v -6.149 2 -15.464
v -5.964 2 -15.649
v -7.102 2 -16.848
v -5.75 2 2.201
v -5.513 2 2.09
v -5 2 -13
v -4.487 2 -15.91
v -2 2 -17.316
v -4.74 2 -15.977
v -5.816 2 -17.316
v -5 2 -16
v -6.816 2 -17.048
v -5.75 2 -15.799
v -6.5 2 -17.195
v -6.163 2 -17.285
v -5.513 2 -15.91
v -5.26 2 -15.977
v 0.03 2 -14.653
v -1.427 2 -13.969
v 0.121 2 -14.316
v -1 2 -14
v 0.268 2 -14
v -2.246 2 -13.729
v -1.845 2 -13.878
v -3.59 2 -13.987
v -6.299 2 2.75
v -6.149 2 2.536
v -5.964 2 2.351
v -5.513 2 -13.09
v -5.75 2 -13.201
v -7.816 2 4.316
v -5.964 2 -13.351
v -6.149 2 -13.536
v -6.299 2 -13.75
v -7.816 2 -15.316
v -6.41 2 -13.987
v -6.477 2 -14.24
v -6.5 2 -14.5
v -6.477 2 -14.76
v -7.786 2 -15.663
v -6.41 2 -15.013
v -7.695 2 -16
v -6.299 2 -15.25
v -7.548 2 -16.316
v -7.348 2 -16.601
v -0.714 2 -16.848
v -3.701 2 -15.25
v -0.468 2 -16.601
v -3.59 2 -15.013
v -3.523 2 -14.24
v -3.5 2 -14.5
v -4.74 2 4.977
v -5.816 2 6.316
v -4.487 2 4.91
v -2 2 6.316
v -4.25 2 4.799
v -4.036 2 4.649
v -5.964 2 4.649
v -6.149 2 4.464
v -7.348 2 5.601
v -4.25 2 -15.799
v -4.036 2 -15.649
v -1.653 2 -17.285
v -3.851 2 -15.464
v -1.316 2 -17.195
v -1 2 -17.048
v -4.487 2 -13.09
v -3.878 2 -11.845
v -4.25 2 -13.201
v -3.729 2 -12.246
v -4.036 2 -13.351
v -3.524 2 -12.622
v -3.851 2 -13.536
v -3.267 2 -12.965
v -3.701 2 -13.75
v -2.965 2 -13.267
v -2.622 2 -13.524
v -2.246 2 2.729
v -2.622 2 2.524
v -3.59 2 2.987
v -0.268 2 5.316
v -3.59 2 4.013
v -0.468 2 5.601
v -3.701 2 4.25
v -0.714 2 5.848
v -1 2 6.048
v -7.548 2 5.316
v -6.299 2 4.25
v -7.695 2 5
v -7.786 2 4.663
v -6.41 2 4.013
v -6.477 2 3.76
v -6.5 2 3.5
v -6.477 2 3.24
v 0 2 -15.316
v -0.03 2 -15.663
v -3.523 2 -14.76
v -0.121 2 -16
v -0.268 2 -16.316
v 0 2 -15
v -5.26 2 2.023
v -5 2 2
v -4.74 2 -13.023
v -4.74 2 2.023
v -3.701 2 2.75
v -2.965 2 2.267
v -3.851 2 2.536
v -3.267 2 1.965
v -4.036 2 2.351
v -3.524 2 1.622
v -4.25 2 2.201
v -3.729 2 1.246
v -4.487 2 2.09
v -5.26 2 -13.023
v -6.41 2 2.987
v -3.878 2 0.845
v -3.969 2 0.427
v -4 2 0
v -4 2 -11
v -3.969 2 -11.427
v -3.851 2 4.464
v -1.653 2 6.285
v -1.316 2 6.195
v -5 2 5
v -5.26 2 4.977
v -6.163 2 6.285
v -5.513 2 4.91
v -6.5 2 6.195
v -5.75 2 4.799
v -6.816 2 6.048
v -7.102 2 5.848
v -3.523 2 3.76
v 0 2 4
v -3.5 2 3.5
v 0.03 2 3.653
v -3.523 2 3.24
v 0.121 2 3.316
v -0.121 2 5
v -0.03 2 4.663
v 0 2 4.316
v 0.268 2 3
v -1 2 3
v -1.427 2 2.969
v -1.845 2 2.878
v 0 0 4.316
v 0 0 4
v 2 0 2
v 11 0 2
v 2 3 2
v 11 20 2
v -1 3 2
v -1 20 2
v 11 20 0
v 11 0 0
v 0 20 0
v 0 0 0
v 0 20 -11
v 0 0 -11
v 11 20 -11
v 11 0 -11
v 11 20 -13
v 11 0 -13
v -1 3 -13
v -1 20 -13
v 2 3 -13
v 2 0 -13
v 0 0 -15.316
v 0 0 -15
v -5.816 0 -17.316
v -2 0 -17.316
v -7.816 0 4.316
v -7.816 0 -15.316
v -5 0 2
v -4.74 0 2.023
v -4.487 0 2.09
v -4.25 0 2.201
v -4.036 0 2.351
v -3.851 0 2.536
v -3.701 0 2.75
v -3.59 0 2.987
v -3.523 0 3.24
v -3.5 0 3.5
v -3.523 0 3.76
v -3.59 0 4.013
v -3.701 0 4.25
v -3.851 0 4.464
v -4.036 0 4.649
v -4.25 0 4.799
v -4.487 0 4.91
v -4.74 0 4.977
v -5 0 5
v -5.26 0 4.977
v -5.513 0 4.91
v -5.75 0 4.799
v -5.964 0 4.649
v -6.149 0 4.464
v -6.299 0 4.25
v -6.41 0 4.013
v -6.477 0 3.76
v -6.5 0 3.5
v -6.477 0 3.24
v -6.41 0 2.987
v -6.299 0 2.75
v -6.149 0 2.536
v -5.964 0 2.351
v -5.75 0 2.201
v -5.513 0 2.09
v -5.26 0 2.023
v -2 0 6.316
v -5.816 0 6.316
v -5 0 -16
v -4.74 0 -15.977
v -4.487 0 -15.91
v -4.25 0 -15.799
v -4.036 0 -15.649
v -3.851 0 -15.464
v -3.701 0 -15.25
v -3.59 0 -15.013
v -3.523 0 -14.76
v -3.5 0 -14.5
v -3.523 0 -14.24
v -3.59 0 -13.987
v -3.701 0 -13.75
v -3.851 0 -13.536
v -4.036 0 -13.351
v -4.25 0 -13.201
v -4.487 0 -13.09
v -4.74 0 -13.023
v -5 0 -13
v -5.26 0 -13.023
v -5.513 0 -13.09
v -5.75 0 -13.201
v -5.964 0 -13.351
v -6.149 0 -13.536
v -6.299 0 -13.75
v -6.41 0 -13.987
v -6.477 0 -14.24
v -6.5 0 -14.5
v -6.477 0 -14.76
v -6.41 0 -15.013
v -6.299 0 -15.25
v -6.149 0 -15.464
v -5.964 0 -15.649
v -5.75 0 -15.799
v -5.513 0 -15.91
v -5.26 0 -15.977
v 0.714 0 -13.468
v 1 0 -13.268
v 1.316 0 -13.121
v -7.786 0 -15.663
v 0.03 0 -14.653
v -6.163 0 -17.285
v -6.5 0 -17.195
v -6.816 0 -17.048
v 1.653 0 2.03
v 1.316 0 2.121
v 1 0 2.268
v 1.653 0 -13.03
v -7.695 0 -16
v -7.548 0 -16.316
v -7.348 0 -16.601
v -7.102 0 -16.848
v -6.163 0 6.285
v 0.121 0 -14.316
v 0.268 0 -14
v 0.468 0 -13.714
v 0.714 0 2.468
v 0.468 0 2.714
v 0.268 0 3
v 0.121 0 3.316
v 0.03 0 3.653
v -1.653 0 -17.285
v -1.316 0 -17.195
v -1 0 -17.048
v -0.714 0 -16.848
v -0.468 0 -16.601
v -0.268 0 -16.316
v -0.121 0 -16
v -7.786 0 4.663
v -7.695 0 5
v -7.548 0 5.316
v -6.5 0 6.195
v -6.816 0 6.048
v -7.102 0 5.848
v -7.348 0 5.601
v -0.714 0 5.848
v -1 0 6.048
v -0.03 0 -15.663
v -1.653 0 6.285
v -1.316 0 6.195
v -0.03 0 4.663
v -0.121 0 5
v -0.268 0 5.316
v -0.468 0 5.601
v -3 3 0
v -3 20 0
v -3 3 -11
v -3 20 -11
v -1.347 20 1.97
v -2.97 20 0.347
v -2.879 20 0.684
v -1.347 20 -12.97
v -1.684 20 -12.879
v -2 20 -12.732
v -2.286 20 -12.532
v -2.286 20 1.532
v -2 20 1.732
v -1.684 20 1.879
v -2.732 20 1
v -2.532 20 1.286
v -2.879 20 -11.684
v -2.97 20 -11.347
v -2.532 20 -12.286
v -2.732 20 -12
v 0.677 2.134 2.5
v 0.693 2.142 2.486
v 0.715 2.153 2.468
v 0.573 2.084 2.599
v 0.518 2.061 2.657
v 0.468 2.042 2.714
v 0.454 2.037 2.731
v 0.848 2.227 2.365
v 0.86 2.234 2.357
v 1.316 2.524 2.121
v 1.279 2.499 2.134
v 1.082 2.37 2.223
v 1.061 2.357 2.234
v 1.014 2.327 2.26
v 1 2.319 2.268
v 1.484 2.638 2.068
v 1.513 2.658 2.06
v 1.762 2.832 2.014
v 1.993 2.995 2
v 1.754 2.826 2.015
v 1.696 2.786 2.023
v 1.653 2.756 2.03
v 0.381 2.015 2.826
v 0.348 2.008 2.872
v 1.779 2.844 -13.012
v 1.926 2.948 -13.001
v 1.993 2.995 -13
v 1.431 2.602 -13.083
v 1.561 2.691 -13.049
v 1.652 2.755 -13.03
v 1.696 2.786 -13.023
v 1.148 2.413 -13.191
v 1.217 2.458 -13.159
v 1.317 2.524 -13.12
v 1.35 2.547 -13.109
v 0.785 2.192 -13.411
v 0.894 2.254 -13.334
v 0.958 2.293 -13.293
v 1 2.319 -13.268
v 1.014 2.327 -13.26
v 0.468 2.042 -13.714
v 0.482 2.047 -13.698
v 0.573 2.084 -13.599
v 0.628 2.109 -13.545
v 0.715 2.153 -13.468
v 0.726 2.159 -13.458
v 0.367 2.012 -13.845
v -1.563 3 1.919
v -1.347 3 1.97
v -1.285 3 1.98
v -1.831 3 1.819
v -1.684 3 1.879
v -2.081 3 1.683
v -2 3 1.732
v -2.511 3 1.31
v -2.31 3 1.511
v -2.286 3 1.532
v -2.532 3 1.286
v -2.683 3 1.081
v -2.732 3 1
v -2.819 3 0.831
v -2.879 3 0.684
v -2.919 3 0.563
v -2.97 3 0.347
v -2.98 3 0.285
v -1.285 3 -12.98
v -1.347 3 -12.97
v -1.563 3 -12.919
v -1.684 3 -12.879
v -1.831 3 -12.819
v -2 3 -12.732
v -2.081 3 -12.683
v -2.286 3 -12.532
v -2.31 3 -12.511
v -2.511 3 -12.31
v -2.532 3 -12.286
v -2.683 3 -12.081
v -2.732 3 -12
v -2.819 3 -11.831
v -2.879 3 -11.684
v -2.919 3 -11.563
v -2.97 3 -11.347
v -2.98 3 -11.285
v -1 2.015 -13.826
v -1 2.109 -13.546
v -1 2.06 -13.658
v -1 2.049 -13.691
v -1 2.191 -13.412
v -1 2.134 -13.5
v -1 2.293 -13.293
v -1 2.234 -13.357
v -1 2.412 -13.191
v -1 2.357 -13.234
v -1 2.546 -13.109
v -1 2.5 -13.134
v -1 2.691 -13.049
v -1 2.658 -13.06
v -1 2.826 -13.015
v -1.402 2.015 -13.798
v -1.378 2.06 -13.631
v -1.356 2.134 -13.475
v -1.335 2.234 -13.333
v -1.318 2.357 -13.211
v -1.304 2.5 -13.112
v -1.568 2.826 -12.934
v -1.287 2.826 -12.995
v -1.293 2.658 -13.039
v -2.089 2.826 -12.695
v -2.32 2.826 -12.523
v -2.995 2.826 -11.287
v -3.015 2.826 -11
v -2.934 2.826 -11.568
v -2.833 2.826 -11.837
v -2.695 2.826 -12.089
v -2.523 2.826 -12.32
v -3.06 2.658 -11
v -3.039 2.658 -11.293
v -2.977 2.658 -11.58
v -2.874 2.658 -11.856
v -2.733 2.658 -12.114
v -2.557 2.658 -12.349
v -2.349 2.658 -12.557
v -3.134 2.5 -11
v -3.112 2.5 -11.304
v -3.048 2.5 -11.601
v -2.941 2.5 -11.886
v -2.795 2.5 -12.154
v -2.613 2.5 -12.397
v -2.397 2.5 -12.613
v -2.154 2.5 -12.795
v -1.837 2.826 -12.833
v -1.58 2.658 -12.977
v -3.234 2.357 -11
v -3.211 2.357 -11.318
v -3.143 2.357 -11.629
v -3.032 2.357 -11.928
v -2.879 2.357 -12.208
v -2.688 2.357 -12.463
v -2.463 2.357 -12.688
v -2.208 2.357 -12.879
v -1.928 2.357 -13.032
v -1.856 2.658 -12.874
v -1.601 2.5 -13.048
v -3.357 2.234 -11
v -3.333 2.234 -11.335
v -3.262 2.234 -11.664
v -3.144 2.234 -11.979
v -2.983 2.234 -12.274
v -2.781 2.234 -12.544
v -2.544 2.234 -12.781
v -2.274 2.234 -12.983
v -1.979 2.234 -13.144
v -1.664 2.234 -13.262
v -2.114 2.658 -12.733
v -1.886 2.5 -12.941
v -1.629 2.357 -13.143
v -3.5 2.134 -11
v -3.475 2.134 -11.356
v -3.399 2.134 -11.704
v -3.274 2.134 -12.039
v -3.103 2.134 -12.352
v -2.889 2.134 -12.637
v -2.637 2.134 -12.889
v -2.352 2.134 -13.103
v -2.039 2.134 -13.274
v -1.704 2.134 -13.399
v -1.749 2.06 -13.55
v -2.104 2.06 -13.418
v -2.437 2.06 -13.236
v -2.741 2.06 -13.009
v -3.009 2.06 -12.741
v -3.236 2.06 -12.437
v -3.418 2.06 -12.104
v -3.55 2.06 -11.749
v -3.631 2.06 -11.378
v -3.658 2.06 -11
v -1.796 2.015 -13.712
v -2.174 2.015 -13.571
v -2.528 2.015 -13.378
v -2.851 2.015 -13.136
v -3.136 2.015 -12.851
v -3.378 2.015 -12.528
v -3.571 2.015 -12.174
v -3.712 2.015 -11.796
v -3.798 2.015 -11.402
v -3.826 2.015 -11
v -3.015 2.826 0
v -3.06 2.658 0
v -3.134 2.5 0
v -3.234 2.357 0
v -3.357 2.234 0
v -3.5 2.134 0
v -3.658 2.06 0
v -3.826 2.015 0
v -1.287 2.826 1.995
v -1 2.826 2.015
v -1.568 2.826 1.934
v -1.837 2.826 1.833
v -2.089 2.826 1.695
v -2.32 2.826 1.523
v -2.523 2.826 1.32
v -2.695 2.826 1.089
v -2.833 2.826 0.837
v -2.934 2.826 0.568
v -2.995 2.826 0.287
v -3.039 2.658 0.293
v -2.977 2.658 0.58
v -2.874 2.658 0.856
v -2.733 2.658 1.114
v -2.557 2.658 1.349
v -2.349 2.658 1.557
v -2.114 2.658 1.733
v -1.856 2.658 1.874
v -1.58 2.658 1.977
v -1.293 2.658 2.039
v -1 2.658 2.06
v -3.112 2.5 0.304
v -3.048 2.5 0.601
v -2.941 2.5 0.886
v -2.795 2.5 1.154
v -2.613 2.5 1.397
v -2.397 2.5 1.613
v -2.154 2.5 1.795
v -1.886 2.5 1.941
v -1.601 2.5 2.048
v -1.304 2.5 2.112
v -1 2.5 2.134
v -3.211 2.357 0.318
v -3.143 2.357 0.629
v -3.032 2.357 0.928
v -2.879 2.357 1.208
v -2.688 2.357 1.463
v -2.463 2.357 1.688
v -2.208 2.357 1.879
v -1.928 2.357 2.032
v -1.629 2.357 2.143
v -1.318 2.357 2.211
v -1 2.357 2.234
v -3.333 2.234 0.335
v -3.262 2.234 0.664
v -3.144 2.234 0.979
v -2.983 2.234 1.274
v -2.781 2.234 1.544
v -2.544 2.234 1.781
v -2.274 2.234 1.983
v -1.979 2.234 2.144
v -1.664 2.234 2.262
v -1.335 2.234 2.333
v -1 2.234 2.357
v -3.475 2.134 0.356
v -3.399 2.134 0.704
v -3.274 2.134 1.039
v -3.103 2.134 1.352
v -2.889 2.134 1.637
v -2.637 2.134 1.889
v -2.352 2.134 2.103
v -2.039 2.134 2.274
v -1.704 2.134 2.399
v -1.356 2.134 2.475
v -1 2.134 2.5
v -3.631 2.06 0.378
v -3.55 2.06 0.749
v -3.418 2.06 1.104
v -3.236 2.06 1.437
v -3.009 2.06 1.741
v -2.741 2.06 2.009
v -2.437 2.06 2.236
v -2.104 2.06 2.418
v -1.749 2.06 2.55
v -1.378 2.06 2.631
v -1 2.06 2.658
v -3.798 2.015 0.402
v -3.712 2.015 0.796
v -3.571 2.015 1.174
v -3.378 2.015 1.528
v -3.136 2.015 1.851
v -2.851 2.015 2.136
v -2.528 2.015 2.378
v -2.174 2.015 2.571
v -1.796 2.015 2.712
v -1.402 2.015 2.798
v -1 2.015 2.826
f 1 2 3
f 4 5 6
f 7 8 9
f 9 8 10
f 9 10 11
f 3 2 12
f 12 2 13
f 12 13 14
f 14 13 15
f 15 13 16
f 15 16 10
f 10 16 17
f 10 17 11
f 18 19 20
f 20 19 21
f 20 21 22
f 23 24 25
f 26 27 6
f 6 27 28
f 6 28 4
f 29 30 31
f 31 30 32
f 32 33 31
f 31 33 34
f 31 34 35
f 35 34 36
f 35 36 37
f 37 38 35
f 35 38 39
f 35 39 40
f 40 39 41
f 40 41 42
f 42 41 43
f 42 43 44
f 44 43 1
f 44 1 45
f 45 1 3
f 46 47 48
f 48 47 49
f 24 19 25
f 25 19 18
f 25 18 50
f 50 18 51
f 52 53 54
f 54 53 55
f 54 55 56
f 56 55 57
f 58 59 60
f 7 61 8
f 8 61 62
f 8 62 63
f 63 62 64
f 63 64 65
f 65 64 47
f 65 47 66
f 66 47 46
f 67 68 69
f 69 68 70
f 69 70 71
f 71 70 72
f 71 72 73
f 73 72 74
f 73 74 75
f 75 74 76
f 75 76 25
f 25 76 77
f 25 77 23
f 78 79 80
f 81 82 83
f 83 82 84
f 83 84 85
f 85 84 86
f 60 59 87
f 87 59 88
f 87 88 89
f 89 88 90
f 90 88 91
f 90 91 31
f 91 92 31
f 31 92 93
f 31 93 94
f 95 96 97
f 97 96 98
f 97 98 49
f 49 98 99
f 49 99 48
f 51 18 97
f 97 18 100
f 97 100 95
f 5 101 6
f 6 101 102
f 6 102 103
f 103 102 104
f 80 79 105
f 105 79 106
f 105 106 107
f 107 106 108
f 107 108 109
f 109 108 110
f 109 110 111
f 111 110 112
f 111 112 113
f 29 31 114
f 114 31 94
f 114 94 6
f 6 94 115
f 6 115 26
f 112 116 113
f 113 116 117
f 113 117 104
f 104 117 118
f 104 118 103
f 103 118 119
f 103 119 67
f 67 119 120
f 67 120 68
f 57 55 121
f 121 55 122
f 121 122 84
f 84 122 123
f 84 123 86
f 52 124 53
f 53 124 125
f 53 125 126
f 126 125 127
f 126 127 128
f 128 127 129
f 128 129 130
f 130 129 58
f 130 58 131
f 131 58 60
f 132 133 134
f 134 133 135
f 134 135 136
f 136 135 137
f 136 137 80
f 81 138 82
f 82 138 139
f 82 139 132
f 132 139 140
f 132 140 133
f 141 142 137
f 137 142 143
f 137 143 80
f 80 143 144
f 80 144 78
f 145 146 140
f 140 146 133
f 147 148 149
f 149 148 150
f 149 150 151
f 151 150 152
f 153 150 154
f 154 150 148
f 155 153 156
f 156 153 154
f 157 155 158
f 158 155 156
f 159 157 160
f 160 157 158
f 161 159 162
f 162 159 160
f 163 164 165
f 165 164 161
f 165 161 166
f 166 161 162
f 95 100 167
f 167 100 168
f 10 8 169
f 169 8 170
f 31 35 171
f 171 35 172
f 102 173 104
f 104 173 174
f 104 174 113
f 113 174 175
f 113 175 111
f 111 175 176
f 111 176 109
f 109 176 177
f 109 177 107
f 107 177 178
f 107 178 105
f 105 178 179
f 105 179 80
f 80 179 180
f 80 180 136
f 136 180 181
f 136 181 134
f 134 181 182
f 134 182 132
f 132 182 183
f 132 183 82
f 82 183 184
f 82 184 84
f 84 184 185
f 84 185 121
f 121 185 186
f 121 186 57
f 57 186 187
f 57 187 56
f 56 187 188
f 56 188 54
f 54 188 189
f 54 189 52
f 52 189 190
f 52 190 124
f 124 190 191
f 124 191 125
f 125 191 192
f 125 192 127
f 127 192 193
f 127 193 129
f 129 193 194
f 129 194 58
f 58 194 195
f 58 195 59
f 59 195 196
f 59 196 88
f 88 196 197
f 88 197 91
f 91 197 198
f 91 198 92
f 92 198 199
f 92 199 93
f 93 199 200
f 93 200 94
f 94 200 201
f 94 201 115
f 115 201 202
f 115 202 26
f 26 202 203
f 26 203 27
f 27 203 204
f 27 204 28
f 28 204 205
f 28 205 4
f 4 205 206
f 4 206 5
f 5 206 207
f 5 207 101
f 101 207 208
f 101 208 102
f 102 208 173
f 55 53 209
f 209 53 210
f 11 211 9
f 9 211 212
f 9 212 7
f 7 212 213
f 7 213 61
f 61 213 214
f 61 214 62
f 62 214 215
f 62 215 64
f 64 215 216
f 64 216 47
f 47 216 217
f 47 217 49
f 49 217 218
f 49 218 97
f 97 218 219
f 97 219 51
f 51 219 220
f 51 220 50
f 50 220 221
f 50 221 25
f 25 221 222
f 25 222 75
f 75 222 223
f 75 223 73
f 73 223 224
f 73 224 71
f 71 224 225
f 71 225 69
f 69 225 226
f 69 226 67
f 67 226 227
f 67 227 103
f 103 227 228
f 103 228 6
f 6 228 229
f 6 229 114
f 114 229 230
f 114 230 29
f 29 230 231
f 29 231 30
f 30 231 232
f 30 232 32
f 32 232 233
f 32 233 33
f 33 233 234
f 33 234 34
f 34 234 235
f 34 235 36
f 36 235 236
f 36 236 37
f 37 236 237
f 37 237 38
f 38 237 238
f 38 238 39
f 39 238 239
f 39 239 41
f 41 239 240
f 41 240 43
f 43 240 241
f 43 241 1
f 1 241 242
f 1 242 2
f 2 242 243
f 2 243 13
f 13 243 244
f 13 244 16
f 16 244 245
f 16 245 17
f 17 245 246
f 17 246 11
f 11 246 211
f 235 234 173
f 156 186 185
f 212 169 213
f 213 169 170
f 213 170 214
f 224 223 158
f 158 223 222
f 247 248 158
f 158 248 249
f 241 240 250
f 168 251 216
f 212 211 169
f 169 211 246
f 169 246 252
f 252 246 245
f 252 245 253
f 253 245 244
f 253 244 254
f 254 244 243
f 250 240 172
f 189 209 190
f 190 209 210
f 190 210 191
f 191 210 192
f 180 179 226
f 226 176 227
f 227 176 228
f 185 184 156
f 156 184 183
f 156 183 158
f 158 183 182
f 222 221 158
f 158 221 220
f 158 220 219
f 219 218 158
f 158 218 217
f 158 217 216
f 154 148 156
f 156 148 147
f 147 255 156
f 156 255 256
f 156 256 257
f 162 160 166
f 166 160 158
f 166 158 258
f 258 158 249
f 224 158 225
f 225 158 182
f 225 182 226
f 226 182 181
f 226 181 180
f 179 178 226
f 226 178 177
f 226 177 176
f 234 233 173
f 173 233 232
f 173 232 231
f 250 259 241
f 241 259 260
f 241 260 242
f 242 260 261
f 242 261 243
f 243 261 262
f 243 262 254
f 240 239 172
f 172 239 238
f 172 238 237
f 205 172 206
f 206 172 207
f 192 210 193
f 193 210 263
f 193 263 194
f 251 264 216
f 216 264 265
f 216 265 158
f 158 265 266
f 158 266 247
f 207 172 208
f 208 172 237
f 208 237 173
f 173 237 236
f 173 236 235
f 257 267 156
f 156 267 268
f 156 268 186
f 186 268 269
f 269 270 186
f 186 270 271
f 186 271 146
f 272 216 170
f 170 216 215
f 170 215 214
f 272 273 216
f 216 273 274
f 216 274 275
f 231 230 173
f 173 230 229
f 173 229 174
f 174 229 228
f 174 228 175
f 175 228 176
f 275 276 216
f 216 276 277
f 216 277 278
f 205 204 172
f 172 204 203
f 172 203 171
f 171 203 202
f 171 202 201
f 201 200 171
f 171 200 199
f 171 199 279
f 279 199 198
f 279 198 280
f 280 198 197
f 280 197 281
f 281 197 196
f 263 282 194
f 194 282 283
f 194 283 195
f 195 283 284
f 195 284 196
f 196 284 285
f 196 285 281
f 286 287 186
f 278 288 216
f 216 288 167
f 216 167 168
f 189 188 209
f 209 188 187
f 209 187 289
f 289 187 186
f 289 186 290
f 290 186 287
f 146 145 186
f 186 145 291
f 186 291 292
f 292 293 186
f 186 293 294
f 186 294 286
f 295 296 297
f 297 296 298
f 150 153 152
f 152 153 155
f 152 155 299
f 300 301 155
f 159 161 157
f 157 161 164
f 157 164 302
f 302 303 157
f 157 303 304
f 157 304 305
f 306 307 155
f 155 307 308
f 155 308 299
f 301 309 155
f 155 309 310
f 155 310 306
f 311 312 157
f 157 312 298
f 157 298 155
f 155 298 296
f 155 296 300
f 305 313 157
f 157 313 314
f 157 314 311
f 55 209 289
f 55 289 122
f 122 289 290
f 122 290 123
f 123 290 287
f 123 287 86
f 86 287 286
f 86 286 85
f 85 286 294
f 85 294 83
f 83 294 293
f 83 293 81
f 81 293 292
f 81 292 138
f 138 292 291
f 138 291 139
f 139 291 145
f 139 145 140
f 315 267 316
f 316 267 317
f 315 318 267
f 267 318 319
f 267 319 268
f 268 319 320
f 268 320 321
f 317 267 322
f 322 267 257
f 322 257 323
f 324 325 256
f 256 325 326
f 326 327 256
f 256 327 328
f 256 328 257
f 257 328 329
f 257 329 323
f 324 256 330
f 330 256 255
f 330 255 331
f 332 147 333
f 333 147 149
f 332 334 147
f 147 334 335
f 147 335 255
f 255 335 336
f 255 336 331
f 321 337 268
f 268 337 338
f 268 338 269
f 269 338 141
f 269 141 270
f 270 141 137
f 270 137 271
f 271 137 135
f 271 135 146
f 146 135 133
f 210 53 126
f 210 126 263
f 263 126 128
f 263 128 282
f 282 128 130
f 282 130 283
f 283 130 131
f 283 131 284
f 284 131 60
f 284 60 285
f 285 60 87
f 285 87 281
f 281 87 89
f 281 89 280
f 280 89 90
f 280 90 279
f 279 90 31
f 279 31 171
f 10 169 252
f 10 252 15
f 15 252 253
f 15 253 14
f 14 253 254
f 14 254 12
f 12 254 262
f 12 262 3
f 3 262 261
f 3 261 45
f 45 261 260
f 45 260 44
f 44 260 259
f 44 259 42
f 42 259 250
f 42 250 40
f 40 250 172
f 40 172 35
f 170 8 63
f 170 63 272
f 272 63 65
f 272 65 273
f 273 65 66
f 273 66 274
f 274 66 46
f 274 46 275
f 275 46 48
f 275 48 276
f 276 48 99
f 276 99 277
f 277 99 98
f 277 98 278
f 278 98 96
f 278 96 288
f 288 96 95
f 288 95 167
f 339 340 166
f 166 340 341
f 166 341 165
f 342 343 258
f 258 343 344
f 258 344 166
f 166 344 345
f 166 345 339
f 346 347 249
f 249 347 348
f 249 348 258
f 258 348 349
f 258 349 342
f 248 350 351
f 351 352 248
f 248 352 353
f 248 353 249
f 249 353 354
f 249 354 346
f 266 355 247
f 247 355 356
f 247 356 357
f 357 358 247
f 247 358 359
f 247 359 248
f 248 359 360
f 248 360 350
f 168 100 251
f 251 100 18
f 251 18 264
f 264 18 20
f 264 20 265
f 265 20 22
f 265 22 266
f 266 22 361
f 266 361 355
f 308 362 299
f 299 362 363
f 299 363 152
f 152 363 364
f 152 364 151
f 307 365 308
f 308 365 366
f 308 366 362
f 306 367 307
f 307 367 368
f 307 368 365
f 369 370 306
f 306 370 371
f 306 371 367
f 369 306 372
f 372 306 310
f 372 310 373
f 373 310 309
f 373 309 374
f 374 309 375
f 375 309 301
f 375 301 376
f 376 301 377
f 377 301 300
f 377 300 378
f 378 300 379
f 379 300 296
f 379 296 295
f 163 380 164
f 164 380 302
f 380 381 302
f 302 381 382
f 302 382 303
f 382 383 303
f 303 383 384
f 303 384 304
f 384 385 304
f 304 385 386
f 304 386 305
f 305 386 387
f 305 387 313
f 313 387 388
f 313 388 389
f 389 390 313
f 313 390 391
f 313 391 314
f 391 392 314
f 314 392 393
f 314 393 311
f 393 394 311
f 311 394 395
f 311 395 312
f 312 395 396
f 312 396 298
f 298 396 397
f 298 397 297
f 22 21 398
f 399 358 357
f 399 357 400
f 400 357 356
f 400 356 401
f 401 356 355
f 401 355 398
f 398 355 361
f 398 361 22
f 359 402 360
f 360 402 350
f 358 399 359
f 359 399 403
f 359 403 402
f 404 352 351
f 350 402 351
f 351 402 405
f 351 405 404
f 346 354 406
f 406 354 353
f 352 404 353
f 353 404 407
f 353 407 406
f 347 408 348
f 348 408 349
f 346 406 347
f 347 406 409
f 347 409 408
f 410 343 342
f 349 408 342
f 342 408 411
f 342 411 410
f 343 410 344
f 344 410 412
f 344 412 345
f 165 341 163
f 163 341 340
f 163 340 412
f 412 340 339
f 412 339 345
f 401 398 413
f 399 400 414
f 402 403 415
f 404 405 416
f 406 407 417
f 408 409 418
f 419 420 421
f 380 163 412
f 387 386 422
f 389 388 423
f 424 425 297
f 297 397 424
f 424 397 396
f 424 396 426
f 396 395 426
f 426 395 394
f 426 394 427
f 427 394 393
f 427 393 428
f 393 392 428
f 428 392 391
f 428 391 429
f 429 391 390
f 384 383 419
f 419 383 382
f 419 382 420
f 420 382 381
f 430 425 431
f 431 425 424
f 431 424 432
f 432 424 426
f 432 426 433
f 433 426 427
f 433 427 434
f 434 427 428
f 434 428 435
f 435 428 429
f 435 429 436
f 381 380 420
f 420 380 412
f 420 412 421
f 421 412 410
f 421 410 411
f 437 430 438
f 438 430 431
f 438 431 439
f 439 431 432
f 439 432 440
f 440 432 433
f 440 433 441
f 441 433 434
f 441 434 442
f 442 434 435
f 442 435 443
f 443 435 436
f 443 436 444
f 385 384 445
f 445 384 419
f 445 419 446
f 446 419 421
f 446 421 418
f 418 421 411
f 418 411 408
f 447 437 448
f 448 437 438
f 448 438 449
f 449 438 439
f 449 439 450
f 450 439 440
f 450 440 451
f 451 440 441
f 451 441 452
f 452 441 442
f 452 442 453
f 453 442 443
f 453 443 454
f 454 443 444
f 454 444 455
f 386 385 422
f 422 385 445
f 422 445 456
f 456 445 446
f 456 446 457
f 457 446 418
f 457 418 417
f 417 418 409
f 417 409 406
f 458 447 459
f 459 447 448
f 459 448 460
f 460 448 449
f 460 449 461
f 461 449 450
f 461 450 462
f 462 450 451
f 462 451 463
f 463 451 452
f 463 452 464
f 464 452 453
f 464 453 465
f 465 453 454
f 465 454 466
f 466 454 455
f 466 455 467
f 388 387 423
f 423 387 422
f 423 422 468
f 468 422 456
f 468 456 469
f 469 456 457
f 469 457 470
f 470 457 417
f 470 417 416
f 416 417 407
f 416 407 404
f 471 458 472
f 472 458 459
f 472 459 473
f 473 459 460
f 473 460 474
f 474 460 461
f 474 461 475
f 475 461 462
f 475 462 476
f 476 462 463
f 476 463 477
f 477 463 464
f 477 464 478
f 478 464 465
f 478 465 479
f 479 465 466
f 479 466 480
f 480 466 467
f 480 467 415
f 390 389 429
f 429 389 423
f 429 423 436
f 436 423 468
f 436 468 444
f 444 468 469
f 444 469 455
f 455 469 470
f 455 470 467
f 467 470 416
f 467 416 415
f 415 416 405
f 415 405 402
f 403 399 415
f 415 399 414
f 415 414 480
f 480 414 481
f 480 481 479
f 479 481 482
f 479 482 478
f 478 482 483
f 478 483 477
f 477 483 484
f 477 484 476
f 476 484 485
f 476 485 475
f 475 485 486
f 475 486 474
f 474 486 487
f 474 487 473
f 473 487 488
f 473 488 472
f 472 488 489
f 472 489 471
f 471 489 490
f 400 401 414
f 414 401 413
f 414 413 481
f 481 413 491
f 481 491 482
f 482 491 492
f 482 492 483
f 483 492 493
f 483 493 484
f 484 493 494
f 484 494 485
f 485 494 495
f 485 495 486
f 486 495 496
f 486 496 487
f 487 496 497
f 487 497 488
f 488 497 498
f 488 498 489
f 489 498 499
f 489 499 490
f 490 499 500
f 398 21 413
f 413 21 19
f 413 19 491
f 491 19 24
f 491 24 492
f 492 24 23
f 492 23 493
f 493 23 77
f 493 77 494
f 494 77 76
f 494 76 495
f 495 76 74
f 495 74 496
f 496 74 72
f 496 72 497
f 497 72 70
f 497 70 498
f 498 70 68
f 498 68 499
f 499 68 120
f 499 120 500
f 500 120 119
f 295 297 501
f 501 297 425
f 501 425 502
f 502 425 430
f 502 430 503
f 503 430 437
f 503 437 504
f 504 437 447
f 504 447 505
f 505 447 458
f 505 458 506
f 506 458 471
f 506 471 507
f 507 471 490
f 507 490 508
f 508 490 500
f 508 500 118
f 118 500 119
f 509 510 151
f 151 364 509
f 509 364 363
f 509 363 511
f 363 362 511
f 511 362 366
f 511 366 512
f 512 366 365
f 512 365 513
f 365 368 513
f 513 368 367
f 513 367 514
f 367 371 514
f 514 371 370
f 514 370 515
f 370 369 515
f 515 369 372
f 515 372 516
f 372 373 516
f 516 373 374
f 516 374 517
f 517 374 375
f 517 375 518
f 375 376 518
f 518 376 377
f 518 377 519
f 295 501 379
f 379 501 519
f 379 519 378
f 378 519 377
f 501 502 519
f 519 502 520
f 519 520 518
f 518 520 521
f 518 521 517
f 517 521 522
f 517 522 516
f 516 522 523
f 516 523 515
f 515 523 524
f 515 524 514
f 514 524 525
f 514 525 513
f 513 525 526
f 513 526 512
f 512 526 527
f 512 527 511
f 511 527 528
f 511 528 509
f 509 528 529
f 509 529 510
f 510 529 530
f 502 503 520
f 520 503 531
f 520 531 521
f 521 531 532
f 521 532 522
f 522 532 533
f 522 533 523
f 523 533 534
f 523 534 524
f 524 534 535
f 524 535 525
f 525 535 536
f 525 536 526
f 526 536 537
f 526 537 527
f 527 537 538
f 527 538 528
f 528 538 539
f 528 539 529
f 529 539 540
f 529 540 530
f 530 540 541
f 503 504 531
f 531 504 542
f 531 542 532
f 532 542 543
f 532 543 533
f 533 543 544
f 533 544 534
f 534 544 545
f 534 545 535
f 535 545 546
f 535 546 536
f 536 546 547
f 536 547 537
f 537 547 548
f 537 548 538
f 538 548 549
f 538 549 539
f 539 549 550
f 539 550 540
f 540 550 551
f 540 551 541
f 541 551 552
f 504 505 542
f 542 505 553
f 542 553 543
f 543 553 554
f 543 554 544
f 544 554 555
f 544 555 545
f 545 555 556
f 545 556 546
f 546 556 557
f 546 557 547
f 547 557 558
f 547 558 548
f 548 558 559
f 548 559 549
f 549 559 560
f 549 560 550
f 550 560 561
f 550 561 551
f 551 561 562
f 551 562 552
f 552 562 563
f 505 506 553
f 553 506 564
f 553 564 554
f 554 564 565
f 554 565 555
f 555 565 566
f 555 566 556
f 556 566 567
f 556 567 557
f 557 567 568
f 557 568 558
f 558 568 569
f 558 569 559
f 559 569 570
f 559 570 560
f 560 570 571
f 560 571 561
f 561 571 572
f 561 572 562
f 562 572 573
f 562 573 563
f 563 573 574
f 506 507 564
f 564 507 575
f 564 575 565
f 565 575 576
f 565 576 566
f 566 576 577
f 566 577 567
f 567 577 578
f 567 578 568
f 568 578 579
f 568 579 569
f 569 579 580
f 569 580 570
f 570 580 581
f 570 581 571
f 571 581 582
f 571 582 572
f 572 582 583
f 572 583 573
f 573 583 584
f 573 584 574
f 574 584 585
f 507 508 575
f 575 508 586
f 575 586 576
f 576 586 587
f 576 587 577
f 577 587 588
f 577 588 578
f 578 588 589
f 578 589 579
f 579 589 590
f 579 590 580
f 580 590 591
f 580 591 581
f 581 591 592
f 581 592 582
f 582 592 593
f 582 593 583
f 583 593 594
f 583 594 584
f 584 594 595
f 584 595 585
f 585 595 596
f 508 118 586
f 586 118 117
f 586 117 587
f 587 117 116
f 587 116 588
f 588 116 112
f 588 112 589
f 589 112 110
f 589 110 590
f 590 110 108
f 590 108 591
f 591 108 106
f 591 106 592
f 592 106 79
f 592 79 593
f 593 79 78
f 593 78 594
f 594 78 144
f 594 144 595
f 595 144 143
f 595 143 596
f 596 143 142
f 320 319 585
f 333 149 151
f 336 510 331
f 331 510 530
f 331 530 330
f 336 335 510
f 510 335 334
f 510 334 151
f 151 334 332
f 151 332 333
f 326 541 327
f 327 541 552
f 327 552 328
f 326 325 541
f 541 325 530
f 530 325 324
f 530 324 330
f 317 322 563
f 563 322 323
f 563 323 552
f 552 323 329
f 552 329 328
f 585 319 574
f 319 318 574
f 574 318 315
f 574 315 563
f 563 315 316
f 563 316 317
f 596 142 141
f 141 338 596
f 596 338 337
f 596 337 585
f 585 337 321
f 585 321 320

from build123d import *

# Parameters (mm, degrees)
SKETCH1_R           = 1.5
SKETCH1_W           = 11
SKETCH1_H           = 2
BOSS_EXTRUDE1_DEPTH = 2
BOSS_EXTRUDE2_DEPTH = 20
FILLET2_R           = 2
FILLET3_R           = 1


with BuildPart() as part:
    # Sketch1 → Boss-Extrude1 (new body)
    # profile 1 of 7: a face of its own
    with BuildSketch(Plane(origin=(0, 0, 0), x_dir=(1, 0, 0), z_dir=(0, 1, 0))):
        Polygon((0, -6.315863562), (0, -2), (-3, -2), (-3, 13), (0, 13), (0, 17.315863562), (-7.816047118, 17.315863562), (-7.816047118, -6.315863562), align=None)
        with Locations((-5, -3.5)):
            Circle(SKETCH1_R, mode=Mode.SUBTRACT)
        with Locations((-5, 14.5)):
            Circle(SKETCH1_R, mode=Mode.SUBTRACT)
    # profile 2 of 7: a face of its own
    with BuildSketch(Plane(origin=(0, 0, 0), x_dir=(1, 0, 0), z_dir=(0, 1, 0))):
        Polygon((0, -2), (0, 0), (0, 11), (0, 13), (-3, 13), (-3, -2), align=None)
    # profile 3 of 7: a face of its own
    with BuildSketch(Plane(origin=(0, 0, 0), x_dir=(1, 0, 0), z_dir=(0, 1, 0))):
        Polygon((0, -6.315863562), (0, -2), (-3, -2), (-3, 13), (0, 13), (0, 17.315863562), (-7.816047118, 17.315863562), (-7.816047118, -6.315863562), align=None)
        with Locations((-5, -3.5)):
            Circle(SKETCH1_R, mode=Mode.SUBTRACT)
        with Locations((-5, 14.5)):
            Circle(SKETCH1_R, mode=Mode.SUBTRACT)
    # profile 4 of 7: a face of its own
    with BuildSketch(Plane(origin=(0, 0, 0), x_dir=(1, 0, 0), z_dir=(0, 1, 0))):
        Polygon((0, -6.315863562), (0, -2), (-3, -2), (-3, 13), (0, 13), (0, 17.315863562), (-7.816047118, 17.315863562), (-7.816047118, -6.315863562), align=None)
        with Locations((-5, -3.5)):
            Circle(SKETCH1_R, mode=Mode.SUBTRACT)
        with Locations((-5, 14.5)):
            Circle(SKETCH1_R, mode=Mode.SUBTRACT)
    # profile 5 of 7: a face of its own
    with BuildSketch(Plane(origin=(0, 0, 0), x_dir=(1, 0, 0), z_dir=(0, 1, 0))):
        with Locations((5.5, -1)):
            Rectangle(SKETCH1_W, SKETCH1_H)
    # profile 6 of 7: a face of its own
    with BuildSketch(Plane(origin=(0, 0, 0), x_dir=(1, 0, 0), z_dir=(0, 1, 0))):
        Polygon((0, -2), (0, 0), (0, 11), (0, 13), (-3, 13), (-3, -2), align=None)
    # profile 7 of 7: a face of its own
    with BuildSketch(Plane(origin=(0, 0, 0), x_dir=(1, 0, 0), z_dir=(0, 1, 0))):
        with Locations((5.5, 12)):
            Rectangle(SKETCH1_W, SKETCH1_H)
    extrude(amount=BOSS_EXTRUDE1_DEPTH)

    # Sketch1<3> → Boss-Extrude2 (add)
    with BuildSketch(Plane(origin=(0, 0, 0), x_dir=(1, 0, 0), z_dir=(0, 1, 0))):
        Polygon((-3, -2), (11, -2), (11, 0), (0, 0), (0, 11), (11, 11), (11, 13), (-3, 13), align=None)
    extrude(amount=BOSS_EXTRUDE2_DEPTH)

    # Fillet2
    fillet2_edges = [part.edges().sort_by_distance(p)[0] for p in [
        (-3, 11, 2),
        (-3, 11, -13),
        (0, 1, 6.315863562),
        (0, 1, 2),
        (-7.816047118, 1, 6.315863562),
        (-7.816047118, 1, -17.315863562),
        (0, 1, -17.315863562),
        (0, 1, -13),
    ]]
    fillet(fillet2_edges, radius=FILLET2_R)

    # Fillet3
    fillet3_edges = [part.edges().sort_by_distance(p)[0] for p in [
        (0.5, 2, 2),
        (0.5, 2, -13),
        (-2.414213562, 2, 1.414213562),
        (-2.414213562, 2, -12.414213562),
        (-3, 2, -5.5),
    ]]
    fillet(fillet3_edges, radius=FILLET3_R)


solid = part.part
